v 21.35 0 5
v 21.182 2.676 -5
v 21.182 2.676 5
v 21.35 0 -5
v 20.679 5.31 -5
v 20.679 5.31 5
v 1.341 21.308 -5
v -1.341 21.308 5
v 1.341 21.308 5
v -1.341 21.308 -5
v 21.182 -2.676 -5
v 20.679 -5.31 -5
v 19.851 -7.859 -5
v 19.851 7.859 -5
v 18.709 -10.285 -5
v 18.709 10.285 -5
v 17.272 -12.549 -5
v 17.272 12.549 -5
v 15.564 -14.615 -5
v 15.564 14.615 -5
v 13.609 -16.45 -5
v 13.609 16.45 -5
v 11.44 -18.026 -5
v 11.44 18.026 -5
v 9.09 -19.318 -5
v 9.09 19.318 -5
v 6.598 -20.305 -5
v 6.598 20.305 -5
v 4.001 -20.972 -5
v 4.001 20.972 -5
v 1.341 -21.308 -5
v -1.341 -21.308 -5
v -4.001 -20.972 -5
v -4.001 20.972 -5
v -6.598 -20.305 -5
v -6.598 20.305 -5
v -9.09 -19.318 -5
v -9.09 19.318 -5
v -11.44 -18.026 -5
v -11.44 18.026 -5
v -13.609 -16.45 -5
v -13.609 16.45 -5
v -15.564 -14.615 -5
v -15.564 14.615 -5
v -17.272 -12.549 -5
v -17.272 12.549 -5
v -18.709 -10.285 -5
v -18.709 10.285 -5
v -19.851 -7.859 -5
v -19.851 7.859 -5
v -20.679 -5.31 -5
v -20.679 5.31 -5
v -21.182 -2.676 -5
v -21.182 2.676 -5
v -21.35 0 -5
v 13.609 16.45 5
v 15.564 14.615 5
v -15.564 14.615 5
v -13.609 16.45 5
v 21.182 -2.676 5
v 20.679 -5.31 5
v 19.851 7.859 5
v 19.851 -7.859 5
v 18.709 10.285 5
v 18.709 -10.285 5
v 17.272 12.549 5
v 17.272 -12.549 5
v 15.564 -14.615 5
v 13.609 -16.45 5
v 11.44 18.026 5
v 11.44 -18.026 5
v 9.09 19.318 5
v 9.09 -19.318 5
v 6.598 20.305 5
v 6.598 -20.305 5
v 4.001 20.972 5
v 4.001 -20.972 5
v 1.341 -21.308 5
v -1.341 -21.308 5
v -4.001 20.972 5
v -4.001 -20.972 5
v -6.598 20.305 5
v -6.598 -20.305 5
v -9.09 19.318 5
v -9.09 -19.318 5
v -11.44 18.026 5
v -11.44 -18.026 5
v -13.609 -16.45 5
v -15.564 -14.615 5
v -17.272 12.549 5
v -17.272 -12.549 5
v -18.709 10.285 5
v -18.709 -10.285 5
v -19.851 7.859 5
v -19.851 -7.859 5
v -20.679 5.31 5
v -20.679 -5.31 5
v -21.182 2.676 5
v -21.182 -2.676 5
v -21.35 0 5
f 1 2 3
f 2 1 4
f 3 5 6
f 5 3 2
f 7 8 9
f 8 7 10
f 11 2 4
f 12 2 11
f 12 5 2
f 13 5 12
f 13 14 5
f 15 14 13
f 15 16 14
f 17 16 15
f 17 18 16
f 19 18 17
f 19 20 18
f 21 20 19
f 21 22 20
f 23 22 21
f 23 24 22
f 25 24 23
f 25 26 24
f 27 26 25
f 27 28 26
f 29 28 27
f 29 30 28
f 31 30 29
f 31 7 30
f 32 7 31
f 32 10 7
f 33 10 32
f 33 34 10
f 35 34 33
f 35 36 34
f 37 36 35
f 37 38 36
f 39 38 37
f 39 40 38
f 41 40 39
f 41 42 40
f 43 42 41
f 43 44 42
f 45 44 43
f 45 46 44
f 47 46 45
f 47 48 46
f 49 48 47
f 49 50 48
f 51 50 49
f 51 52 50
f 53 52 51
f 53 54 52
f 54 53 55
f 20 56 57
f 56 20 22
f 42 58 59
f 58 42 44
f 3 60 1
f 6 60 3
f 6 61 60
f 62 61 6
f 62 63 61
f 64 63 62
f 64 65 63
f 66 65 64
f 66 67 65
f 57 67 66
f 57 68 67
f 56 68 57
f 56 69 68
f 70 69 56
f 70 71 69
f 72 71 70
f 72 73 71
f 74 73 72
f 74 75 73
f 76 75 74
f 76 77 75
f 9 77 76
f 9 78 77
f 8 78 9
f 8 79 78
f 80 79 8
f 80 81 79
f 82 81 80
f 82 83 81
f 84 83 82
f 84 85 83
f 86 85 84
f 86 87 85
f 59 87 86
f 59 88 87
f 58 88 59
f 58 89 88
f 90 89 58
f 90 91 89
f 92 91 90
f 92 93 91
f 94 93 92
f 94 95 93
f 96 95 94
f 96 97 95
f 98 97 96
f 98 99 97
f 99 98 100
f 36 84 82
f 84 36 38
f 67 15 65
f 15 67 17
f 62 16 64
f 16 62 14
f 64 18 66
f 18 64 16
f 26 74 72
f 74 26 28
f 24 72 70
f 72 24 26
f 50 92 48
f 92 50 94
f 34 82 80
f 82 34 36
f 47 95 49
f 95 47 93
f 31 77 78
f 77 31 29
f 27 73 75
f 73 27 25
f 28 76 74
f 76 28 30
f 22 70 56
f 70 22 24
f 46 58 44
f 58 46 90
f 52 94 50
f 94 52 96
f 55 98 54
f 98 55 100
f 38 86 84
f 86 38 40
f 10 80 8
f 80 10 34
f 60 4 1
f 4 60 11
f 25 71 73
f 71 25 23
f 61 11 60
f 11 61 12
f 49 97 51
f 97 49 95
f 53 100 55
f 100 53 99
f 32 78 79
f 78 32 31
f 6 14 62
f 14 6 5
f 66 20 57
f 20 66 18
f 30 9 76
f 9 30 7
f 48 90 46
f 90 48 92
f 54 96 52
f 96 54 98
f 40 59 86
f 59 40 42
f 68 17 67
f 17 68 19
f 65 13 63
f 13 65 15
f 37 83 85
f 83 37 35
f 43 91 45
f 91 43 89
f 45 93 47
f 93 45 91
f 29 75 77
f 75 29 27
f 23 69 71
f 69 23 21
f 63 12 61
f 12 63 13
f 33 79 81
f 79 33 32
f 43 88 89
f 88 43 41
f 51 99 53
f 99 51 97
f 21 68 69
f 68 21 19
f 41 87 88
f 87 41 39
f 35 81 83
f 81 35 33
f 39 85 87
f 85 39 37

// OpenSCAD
$fn = 50;


difference() {
	union() {
		translate(v = [0, 0, -5.0000000000]) {
			cylinder(h = 10, r = 21.3500000000);
		}
	}
	union() {
		translate(v = [0, 0, -100.0000000000]) {
			cylinder(h = 200, r = 0);
		}
	}
}
